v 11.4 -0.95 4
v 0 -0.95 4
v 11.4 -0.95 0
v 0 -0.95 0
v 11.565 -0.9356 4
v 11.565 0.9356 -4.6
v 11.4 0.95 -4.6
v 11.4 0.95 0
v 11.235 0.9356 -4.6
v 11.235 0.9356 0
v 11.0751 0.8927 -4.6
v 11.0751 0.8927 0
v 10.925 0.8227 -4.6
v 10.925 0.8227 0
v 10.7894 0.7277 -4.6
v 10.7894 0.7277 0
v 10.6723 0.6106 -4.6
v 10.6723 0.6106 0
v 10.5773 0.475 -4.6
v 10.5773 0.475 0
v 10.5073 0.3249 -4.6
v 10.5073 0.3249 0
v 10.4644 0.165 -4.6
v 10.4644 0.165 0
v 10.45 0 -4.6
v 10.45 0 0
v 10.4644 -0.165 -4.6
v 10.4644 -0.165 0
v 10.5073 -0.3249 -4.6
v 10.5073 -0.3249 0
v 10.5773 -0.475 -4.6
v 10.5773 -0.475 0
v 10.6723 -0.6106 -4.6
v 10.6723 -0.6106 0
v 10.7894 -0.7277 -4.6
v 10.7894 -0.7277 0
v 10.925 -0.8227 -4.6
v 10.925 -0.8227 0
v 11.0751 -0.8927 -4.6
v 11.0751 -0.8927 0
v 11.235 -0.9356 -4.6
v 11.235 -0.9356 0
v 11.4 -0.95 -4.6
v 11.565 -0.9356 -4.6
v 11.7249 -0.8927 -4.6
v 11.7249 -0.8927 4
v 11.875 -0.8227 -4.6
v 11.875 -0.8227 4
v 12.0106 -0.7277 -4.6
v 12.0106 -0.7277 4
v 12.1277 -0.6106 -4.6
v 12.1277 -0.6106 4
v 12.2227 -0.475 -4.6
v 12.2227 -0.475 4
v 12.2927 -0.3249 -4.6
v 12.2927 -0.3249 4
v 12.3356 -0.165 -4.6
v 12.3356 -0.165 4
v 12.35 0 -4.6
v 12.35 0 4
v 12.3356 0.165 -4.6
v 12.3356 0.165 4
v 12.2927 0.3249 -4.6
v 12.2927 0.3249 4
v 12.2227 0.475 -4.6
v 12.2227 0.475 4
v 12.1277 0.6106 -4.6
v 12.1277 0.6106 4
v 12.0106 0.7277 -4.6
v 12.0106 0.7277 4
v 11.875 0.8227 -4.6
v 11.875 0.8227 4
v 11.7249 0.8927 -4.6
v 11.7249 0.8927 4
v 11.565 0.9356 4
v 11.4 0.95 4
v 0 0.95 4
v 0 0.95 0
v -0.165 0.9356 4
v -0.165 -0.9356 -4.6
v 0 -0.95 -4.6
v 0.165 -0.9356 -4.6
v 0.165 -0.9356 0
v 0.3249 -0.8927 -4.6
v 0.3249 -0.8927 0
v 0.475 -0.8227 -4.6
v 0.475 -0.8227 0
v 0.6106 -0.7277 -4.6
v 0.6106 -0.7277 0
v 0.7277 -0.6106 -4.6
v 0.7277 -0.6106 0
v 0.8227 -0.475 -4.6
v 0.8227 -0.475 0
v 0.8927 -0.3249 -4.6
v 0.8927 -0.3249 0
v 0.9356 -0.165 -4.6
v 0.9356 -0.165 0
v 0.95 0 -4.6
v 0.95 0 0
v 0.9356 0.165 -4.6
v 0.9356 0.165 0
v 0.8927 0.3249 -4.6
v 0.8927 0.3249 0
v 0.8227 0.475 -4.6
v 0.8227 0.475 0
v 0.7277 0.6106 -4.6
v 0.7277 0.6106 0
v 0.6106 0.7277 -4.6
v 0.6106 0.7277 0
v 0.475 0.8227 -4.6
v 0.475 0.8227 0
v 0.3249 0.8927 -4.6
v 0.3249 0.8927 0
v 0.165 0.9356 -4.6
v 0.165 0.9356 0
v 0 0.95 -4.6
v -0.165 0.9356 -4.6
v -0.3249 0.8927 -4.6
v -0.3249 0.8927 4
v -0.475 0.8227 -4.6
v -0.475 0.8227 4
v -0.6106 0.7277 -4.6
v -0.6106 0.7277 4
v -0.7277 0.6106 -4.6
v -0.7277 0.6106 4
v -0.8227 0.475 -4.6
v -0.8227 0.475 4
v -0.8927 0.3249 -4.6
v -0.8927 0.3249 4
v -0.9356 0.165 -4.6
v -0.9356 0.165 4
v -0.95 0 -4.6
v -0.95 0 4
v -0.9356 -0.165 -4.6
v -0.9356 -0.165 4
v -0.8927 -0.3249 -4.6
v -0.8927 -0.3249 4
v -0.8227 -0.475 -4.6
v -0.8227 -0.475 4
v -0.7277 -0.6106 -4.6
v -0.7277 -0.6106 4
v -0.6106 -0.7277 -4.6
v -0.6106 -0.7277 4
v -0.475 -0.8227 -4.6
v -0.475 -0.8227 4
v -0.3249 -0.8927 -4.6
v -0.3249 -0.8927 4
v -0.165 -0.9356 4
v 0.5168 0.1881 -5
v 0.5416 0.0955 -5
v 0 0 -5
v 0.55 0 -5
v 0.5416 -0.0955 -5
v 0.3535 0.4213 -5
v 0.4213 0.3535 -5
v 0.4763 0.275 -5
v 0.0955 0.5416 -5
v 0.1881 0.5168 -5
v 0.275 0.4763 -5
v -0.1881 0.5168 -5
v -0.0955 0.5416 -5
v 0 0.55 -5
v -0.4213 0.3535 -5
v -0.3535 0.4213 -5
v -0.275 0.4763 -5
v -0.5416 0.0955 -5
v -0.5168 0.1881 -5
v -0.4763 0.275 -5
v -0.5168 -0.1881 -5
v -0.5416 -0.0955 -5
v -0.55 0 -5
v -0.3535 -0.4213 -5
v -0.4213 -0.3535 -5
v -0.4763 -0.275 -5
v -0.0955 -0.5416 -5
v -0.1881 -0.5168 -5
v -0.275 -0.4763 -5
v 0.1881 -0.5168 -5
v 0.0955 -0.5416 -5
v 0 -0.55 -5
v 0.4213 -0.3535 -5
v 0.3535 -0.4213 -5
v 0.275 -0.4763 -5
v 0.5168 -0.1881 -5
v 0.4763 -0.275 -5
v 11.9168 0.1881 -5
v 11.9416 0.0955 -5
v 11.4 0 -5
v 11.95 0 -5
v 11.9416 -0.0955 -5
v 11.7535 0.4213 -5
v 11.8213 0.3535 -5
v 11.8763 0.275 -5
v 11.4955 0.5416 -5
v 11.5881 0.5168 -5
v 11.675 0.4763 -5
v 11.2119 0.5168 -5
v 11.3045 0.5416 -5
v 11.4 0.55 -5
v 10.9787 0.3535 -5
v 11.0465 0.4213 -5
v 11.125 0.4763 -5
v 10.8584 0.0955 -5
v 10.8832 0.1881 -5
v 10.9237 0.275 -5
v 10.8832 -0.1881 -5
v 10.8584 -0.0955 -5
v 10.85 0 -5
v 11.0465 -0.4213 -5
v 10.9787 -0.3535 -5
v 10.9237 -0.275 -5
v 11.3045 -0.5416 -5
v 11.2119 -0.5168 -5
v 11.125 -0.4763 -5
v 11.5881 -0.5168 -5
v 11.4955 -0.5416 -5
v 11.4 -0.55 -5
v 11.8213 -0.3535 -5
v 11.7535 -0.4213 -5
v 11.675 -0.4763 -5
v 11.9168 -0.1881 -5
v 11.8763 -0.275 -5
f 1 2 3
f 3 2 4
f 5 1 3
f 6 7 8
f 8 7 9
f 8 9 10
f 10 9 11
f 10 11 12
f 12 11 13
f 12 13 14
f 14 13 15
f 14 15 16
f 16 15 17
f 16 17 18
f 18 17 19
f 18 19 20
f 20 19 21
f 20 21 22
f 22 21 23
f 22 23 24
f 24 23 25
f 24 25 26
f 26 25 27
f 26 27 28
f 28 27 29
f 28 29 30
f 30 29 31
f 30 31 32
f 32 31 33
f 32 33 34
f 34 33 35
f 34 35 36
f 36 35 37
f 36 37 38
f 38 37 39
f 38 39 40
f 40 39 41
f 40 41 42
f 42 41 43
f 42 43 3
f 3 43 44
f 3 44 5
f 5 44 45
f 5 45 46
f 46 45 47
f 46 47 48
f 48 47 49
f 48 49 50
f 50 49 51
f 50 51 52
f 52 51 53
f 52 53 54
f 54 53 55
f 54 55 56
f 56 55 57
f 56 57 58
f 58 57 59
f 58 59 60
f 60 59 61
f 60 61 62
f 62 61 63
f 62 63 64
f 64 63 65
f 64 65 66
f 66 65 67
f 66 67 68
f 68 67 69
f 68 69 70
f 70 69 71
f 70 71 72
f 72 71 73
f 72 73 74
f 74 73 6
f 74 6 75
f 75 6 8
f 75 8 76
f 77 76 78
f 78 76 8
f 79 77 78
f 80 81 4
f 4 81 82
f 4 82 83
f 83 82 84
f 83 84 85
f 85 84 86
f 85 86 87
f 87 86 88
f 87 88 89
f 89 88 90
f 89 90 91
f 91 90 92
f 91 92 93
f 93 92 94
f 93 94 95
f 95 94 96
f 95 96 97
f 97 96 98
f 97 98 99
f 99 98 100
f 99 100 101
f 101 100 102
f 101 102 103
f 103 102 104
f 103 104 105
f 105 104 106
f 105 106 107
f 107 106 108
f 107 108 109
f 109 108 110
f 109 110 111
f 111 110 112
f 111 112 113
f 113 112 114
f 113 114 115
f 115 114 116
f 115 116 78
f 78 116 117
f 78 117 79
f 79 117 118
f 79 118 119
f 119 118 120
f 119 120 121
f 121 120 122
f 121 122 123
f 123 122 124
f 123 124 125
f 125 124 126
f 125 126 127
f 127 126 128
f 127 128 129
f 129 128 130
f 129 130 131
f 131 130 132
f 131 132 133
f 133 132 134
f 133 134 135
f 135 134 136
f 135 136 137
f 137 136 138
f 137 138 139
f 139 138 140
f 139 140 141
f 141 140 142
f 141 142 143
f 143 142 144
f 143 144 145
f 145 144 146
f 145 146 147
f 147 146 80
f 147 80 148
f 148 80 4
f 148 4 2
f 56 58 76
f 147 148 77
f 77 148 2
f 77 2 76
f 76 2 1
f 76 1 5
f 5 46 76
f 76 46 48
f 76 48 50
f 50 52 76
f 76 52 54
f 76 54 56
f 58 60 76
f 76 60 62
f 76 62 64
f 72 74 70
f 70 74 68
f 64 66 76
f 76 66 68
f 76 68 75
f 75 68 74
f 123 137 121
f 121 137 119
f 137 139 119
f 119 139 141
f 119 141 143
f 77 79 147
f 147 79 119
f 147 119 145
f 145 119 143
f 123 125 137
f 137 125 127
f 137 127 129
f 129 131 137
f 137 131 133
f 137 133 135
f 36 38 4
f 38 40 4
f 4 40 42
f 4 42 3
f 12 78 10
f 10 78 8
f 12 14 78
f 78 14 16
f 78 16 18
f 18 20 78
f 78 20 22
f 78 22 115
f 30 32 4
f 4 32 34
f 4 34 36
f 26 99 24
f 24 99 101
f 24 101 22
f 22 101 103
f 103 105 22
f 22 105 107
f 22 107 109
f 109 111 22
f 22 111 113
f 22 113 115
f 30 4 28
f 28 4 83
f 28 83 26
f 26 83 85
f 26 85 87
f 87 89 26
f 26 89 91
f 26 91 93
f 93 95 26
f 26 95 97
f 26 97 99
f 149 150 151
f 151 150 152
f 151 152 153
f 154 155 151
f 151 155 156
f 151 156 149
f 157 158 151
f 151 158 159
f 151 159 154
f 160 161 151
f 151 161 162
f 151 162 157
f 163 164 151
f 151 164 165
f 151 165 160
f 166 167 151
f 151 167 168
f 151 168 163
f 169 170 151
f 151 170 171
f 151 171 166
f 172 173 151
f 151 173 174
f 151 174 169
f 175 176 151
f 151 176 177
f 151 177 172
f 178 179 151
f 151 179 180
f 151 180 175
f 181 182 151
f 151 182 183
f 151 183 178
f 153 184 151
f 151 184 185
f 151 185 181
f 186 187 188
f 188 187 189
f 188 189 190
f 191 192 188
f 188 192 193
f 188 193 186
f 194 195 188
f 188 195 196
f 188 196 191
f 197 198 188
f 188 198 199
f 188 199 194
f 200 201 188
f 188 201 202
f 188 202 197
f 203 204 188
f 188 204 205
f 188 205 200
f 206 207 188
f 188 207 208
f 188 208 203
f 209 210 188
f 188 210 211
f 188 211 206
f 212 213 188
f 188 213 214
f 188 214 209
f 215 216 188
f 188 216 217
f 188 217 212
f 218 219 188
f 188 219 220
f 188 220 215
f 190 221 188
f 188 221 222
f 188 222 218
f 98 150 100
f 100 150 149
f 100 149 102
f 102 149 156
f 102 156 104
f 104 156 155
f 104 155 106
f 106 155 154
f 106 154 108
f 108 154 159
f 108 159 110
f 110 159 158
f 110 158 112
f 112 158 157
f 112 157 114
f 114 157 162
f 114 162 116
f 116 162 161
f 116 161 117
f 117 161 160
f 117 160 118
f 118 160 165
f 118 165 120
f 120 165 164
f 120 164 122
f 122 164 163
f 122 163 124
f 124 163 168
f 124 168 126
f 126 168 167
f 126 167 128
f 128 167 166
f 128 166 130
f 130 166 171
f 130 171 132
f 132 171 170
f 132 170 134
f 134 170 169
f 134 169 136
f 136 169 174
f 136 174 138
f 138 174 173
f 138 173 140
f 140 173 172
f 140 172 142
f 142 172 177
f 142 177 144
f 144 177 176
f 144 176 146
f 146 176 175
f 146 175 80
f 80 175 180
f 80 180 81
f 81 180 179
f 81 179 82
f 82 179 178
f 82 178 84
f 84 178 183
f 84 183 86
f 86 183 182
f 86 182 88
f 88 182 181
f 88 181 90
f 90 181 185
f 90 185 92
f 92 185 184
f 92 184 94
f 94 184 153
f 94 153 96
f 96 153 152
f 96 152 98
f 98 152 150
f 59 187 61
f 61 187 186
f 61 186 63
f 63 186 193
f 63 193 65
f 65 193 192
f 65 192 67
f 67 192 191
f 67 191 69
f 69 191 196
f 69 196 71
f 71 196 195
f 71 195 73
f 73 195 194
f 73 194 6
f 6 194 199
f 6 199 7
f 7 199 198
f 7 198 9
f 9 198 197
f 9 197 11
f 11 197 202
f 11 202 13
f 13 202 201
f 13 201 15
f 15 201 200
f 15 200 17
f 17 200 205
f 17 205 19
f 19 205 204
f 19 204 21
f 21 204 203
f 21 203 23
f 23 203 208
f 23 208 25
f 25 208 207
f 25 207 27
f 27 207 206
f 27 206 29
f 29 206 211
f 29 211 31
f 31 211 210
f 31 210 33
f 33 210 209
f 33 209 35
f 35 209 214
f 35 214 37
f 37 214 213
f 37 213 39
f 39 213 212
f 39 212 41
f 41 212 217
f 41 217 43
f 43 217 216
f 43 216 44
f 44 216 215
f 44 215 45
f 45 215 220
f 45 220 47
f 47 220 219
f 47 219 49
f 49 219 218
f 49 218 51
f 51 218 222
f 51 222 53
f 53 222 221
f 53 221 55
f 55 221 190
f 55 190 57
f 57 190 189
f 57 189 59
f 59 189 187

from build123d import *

# Parameters (mm, degrees)
BOSS_EXTRUDE1_DEPTH = 4
BOSS_EXTRUDE2_START = -5
SKETCH1_4_R         = 0.95
BOSS_EXTRUDE2_DEPTH = 5
CHAMFER1_SIZE       = 0.4


with BuildPart() as part:
    # Sketch1 → Boss-Extrude1 (new body)
    with BuildSketch(Plane.XY):
        with BuildLine():
            Line((11.4, 0.95), (0, 0.95))
            ThreePointArc((0, 0.95), (-0.95, 0), (0, -0.95))
            Line((0, -0.95), (11.4, -0.95))
            ThreePointArc((11.4, -0.95), (12.35, 0), (11.4, 0.95))
        make_face()
    extrude(amount=BOSS_EXTRUDE1_DEPTH)

    # Sketch1<4> → Boss-Extrude2 (add)
    with BuildSketch(Plane.XY.offset(BOSS_EXTRUDE2_START)):
        with Locations(Location((0, 0, 0), (0, 0, 90))):
            Circle(SKETCH1_4_R)
        with Locations(Location((11.4, 0, 0), (0, 0, 270))):
            Circle(SKETCH1_4_R)
    extrude(amount=BOSS_EXTRUDE2_DEPTH)

    # Chamfer1
    chamfer1_edges = [part.edges().sort_by_distance(p)[0] for p in [
        (0, -0.95, -5),
        (11.4, 0.95, -5),
    ]]
    chamfer(chamfer1_edges, length=CHAMFER1_SIZE)


solid = part.part
